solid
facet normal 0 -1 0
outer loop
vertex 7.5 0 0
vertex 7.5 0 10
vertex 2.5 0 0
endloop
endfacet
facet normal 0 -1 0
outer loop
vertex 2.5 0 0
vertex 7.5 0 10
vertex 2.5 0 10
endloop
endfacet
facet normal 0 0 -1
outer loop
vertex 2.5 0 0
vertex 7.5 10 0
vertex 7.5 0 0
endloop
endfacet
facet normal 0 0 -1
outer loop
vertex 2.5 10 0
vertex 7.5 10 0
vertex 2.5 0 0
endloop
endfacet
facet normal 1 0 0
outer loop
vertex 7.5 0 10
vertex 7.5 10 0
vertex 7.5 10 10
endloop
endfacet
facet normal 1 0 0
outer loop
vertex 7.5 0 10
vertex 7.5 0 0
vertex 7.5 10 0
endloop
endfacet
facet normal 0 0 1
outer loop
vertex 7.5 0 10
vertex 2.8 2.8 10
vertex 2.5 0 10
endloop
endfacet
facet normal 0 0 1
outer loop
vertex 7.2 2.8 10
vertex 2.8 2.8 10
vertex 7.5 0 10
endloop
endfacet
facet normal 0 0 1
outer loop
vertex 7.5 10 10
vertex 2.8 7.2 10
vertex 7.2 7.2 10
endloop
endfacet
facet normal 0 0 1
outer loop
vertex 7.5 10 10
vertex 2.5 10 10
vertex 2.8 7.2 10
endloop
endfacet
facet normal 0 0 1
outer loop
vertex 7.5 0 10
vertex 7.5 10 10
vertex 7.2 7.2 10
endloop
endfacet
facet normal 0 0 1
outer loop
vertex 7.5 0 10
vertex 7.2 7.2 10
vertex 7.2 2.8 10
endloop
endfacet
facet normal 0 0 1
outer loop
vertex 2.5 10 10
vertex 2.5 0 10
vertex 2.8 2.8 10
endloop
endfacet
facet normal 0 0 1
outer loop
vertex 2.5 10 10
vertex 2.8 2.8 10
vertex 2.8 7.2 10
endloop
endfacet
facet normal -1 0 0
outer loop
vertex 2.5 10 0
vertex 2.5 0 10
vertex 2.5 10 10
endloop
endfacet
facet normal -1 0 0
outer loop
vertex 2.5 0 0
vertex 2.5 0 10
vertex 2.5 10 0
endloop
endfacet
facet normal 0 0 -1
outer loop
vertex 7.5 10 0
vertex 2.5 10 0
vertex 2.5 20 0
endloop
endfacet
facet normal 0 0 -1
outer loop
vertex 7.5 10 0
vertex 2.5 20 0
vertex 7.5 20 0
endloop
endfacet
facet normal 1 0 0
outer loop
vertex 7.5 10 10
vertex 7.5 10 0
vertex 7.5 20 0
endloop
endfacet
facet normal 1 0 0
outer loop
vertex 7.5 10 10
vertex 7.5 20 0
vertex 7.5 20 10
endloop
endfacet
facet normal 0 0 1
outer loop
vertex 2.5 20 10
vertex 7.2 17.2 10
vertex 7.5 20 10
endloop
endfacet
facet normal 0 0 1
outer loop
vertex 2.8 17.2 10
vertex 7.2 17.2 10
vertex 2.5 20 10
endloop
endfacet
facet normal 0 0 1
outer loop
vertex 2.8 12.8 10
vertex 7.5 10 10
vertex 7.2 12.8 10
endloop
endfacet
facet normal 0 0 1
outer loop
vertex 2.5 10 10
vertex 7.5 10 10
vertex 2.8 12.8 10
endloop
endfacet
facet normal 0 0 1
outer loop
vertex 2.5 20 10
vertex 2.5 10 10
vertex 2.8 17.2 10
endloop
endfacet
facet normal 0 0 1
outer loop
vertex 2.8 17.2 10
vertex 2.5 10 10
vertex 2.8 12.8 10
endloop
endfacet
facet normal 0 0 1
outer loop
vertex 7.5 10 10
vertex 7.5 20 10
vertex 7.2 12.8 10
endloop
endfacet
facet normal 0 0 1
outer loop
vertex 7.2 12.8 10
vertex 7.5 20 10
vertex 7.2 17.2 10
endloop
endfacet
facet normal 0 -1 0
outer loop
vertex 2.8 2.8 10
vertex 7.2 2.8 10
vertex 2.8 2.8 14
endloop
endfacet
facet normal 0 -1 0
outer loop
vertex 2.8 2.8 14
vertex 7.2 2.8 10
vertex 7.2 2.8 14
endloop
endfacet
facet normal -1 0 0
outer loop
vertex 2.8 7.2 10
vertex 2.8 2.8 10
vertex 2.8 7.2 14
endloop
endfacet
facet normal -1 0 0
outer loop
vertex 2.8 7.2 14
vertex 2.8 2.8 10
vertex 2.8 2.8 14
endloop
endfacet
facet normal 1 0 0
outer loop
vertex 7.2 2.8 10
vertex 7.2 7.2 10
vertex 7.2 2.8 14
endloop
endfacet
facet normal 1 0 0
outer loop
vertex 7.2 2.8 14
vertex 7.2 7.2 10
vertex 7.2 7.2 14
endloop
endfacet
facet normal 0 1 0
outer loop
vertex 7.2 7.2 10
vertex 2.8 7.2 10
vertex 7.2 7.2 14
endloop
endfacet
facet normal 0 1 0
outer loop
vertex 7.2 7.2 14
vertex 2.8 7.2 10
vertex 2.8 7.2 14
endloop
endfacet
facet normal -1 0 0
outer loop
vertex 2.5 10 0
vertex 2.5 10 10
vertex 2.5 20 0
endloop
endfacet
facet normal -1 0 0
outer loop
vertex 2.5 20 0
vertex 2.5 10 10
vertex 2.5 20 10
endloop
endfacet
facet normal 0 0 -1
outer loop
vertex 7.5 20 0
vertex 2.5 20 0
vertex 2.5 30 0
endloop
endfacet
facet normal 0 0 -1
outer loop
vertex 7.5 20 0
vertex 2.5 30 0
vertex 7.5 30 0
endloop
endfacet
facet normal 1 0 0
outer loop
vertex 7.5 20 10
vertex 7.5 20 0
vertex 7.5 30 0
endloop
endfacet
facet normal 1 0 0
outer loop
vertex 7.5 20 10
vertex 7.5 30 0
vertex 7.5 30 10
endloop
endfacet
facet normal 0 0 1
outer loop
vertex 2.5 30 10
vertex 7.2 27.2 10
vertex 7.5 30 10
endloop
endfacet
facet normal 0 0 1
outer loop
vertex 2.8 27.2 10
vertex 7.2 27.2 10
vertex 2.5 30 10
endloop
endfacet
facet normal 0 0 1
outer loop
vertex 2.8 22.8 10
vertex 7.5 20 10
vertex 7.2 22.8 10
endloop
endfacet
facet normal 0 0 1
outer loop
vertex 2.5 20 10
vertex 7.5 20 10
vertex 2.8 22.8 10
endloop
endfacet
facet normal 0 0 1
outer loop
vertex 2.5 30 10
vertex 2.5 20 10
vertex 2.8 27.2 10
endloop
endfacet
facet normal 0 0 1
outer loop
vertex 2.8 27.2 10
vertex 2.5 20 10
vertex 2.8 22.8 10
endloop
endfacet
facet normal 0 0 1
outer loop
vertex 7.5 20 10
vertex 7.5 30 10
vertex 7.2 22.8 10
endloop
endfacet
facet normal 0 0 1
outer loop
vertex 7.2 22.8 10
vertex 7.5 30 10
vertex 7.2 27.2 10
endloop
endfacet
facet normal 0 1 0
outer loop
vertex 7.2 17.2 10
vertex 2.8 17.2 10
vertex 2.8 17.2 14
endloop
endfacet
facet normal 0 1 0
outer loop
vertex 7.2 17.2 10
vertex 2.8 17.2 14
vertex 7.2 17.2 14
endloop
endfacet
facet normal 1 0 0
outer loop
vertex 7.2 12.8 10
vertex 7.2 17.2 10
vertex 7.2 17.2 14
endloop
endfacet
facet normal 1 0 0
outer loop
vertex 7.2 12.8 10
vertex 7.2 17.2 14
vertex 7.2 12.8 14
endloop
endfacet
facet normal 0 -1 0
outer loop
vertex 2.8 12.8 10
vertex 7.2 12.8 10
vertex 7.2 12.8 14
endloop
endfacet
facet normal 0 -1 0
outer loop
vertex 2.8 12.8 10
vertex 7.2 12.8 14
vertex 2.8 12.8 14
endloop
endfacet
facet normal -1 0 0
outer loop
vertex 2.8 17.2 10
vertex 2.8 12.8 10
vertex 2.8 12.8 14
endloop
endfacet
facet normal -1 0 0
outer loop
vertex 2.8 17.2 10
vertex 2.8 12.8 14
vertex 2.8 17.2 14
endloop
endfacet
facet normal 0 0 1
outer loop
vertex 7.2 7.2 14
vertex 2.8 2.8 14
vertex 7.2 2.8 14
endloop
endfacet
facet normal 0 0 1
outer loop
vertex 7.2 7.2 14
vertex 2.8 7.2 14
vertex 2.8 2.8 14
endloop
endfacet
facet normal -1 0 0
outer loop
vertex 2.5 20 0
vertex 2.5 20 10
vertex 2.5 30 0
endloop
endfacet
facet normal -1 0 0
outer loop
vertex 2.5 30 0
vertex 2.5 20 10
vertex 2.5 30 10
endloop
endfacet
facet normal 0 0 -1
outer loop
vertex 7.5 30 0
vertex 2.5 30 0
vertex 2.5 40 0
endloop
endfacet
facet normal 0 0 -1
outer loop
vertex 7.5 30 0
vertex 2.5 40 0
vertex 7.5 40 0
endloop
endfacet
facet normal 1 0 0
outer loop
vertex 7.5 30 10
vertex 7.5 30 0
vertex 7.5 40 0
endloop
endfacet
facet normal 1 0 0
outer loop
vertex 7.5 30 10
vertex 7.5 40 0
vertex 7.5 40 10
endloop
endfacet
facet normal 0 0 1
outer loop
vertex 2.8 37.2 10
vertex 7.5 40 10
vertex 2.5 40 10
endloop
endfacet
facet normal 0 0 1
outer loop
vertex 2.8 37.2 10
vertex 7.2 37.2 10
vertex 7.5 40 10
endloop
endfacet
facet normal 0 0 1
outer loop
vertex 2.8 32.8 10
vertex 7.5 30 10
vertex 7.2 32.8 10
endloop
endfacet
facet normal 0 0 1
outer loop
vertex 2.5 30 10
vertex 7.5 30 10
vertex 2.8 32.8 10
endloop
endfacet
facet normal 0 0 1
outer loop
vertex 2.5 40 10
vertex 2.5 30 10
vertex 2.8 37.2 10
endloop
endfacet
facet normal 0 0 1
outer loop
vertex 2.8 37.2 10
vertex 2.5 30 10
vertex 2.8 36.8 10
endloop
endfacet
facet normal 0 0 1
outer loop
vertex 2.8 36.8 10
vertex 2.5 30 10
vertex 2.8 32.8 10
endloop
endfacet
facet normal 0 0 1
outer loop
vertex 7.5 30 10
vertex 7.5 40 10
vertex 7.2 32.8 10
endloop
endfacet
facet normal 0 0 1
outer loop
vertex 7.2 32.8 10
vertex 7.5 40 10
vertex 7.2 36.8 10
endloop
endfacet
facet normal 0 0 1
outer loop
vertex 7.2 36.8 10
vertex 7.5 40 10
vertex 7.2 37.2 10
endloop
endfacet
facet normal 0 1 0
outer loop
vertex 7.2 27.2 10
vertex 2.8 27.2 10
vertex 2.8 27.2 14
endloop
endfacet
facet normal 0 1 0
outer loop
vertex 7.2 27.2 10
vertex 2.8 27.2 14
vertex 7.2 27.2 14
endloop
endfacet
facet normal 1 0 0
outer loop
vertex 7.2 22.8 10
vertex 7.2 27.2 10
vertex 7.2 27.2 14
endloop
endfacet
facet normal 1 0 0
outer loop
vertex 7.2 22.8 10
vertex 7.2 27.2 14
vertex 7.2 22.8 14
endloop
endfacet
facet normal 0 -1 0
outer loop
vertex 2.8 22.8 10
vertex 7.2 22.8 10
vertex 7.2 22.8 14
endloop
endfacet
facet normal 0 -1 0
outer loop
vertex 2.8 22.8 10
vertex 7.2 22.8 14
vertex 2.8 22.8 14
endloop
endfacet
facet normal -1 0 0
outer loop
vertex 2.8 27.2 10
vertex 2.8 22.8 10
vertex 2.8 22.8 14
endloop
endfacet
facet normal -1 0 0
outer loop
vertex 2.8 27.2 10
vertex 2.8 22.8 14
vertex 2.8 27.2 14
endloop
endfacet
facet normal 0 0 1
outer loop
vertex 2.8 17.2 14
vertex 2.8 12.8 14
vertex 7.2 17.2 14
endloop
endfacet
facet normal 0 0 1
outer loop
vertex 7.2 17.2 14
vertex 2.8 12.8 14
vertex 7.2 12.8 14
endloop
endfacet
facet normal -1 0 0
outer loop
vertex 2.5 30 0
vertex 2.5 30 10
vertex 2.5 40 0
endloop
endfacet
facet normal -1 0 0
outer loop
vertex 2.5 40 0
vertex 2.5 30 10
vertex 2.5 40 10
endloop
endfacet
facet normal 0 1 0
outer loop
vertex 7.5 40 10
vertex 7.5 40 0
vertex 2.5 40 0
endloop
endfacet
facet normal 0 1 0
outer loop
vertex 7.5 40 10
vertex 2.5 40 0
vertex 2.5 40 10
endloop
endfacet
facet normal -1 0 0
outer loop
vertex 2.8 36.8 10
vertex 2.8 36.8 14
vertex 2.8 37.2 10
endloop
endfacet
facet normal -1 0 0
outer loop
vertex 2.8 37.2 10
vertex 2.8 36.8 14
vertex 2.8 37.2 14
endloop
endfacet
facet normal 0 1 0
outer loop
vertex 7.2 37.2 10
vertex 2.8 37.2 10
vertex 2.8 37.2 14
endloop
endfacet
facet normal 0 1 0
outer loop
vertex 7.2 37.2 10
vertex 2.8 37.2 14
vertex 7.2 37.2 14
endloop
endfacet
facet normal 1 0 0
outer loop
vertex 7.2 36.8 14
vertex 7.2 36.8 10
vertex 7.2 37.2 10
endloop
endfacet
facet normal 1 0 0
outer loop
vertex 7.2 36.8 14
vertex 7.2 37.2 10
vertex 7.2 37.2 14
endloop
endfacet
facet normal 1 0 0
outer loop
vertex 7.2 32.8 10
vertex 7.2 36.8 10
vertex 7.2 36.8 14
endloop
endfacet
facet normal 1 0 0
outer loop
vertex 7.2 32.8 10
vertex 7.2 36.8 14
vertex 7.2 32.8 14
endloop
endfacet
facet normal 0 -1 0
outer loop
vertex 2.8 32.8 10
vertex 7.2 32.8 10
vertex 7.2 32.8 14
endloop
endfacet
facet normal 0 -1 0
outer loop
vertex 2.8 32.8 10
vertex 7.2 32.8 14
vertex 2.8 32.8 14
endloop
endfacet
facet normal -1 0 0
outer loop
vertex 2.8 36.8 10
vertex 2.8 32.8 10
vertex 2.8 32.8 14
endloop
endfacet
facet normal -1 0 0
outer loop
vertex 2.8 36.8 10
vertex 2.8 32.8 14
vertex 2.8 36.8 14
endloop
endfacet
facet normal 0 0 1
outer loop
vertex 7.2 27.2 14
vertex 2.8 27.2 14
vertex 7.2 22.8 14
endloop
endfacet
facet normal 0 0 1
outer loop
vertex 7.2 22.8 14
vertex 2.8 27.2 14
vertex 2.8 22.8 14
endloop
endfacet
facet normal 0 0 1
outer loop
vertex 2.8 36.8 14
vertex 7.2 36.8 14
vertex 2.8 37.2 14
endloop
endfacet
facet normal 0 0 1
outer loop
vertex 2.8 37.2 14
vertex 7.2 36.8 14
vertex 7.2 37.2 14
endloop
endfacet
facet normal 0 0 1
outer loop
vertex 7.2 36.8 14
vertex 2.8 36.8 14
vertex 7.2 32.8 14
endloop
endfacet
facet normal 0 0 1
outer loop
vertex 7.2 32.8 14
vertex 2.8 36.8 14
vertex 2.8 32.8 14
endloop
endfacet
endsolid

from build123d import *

# Parameters (mm, degrees)
BOX_W             = 10
BOX_H             = 10
BOX_DEPTH         = 10
SKETCH_W          = 4.4
SKETCH_H          = 4.4
PAD_DEPTH         = 4
PAD_FACE1_W       = 10
PAD_FACE1_H       = 10
POCKET_DEPTH      = 2.5
POCKET_FACE3_W    = 10
POCKET_FACE3_H    = 10
POCKET001_DEPTH   = 2.5
POCKET001_FACE6_W = 5
POCKET001_FACE6_H = 10
PAD001_DEPTH      = 10
SKETCH001_W       = 4.4
SKETCH001_H       = 4.4
PAD002_DEPTH      = 4
PAD002_FACE14_W   = 5
PAD002_FACE14_H   = 10
PAD003_DEPTH      = 10
SKETCH002_W       = 4.4
SKETCH002_H       = 4.4
PAD004_DEPTH      = 4
PAD004_FACE23_W   = 5
PAD004_FACE23_H   = 10
PAD005_DEPTH      = 10
SKETCH003_W       = 4.4
SKETCH003_H       = 4
PAD006_DEPTH      = 4
PAD006_FACE33_W   = 4.4
PAD006_FACE33_H   = 4
PAD007_DEPTH      = 0.4


with BuildPart() as part:
    # Box → Box (new body)
    with BuildSketch(Plane.XY):
        with Locations((5, 5)):
            Rectangle(BOX_W, BOX_H)
    extrude(amount=BOX_DEPTH)

    # Sketch (on Face6 of BaseFeature) → Pad (new body)
    with BuildSketch(Plane.XY.offset(10)):
        with Locations((5, 5)):
            Rectangle(SKETCH_W, SKETCH_H)
    extrude(amount=PAD_DEPTH)

    # Pad Face1 → Pocket (cut)
    with BuildSketch(Plane(origin=(0, 5, 5), x_dir=(0, 1, 0), z_dir=(-1, 0, 0))):
        Rectangle(PAD_FACE1_W, PAD_FACE1_H)
    extrude(amount=-POCKET_DEPTH, mode=Mode.SUBTRACT)

    # Pocket Face3 → Pocket001 (cut)
    with BuildSketch(Plane(origin=(10, 5, 5), x_dir=(0, -1, 0), z_dir=(1, 0, 0))):
        Rectangle(POCKET_FACE3_W, POCKET_FACE3_H)
    extrude(amount=-POCKET001_DEPTH, mode=Mode.SUBTRACT)

    # Pocket001 Face6 → Pad001 (add)
    with BuildSketch(Plane(origin=(5, 10, 5), x_dir=(1, 0, 0), z_dir=(0, 1, 0))):
        Rectangle(POCKET001_FACE6_W, POCKET001_FACE6_H)
    extrude(amount=PAD001_DEPTH)

    # Sketch001 (on Face8 of Pad001) → Pad002 (join)
    with BuildSketch(Plane.XY.offset(10)):
        with Locations((5, 15)):
            Rectangle(SKETCH001_W, SKETCH001_H)
    extrude(amount=PAD002_DEPTH)

    # Pad002 Face14 → Pad003 (add)
    with BuildSketch(Plane(origin=(5, 20, 5), x_dir=(1, 0, 0), z_dir=(0, 1, 0))):
        Rectangle(PAD002_FACE14_W, PAD002_FACE14_H)
    extrude(amount=PAD003_DEPTH)

    # Sketch002 (on Face16 of Pad003) → Pad004 (join)
    with BuildSketch(Plane.XY.offset(10)):
        with Locations((5, 25)):
            Rectangle(SKETCH002_W, SKETCH002_H)
    extrude(amount=PAD004_DEPTH)

    # Pad004 Face23 → Pad005 (add)
    with BuildSketch(Plane(origin=(5, 30, 5), x_dir=(1, 0, 0), z_dir=(0, 1, 0))):
        Rectangle(PAD004_FACE23_W, PAD004_FACE23_H)
    extrude(amount=PAD005_DEPTH)

    # Sketch003 (on Face25 of Pad005) → Pad006 (join)
    with BuildSketch(Plane.XY.offset(10)):
        with Locations((5, 34.8)):
            Rectangle(SKETCH003_W, SKETCH003_H)
    extrude(amount=PAD006_DEPTH)

    # Pad006 Face33 → Pad007 (add)
    with BuildSketch(Plane(origin=(5, 36.8, 12), x_dir=(1, 0, 0), z_dir=(0, 1, 0))):
        Rectangle(PAD006_FACE33_W, PAD006_FACE33_H)
    extrude(amount=PAD007_DEPTH)


solid = part.part
